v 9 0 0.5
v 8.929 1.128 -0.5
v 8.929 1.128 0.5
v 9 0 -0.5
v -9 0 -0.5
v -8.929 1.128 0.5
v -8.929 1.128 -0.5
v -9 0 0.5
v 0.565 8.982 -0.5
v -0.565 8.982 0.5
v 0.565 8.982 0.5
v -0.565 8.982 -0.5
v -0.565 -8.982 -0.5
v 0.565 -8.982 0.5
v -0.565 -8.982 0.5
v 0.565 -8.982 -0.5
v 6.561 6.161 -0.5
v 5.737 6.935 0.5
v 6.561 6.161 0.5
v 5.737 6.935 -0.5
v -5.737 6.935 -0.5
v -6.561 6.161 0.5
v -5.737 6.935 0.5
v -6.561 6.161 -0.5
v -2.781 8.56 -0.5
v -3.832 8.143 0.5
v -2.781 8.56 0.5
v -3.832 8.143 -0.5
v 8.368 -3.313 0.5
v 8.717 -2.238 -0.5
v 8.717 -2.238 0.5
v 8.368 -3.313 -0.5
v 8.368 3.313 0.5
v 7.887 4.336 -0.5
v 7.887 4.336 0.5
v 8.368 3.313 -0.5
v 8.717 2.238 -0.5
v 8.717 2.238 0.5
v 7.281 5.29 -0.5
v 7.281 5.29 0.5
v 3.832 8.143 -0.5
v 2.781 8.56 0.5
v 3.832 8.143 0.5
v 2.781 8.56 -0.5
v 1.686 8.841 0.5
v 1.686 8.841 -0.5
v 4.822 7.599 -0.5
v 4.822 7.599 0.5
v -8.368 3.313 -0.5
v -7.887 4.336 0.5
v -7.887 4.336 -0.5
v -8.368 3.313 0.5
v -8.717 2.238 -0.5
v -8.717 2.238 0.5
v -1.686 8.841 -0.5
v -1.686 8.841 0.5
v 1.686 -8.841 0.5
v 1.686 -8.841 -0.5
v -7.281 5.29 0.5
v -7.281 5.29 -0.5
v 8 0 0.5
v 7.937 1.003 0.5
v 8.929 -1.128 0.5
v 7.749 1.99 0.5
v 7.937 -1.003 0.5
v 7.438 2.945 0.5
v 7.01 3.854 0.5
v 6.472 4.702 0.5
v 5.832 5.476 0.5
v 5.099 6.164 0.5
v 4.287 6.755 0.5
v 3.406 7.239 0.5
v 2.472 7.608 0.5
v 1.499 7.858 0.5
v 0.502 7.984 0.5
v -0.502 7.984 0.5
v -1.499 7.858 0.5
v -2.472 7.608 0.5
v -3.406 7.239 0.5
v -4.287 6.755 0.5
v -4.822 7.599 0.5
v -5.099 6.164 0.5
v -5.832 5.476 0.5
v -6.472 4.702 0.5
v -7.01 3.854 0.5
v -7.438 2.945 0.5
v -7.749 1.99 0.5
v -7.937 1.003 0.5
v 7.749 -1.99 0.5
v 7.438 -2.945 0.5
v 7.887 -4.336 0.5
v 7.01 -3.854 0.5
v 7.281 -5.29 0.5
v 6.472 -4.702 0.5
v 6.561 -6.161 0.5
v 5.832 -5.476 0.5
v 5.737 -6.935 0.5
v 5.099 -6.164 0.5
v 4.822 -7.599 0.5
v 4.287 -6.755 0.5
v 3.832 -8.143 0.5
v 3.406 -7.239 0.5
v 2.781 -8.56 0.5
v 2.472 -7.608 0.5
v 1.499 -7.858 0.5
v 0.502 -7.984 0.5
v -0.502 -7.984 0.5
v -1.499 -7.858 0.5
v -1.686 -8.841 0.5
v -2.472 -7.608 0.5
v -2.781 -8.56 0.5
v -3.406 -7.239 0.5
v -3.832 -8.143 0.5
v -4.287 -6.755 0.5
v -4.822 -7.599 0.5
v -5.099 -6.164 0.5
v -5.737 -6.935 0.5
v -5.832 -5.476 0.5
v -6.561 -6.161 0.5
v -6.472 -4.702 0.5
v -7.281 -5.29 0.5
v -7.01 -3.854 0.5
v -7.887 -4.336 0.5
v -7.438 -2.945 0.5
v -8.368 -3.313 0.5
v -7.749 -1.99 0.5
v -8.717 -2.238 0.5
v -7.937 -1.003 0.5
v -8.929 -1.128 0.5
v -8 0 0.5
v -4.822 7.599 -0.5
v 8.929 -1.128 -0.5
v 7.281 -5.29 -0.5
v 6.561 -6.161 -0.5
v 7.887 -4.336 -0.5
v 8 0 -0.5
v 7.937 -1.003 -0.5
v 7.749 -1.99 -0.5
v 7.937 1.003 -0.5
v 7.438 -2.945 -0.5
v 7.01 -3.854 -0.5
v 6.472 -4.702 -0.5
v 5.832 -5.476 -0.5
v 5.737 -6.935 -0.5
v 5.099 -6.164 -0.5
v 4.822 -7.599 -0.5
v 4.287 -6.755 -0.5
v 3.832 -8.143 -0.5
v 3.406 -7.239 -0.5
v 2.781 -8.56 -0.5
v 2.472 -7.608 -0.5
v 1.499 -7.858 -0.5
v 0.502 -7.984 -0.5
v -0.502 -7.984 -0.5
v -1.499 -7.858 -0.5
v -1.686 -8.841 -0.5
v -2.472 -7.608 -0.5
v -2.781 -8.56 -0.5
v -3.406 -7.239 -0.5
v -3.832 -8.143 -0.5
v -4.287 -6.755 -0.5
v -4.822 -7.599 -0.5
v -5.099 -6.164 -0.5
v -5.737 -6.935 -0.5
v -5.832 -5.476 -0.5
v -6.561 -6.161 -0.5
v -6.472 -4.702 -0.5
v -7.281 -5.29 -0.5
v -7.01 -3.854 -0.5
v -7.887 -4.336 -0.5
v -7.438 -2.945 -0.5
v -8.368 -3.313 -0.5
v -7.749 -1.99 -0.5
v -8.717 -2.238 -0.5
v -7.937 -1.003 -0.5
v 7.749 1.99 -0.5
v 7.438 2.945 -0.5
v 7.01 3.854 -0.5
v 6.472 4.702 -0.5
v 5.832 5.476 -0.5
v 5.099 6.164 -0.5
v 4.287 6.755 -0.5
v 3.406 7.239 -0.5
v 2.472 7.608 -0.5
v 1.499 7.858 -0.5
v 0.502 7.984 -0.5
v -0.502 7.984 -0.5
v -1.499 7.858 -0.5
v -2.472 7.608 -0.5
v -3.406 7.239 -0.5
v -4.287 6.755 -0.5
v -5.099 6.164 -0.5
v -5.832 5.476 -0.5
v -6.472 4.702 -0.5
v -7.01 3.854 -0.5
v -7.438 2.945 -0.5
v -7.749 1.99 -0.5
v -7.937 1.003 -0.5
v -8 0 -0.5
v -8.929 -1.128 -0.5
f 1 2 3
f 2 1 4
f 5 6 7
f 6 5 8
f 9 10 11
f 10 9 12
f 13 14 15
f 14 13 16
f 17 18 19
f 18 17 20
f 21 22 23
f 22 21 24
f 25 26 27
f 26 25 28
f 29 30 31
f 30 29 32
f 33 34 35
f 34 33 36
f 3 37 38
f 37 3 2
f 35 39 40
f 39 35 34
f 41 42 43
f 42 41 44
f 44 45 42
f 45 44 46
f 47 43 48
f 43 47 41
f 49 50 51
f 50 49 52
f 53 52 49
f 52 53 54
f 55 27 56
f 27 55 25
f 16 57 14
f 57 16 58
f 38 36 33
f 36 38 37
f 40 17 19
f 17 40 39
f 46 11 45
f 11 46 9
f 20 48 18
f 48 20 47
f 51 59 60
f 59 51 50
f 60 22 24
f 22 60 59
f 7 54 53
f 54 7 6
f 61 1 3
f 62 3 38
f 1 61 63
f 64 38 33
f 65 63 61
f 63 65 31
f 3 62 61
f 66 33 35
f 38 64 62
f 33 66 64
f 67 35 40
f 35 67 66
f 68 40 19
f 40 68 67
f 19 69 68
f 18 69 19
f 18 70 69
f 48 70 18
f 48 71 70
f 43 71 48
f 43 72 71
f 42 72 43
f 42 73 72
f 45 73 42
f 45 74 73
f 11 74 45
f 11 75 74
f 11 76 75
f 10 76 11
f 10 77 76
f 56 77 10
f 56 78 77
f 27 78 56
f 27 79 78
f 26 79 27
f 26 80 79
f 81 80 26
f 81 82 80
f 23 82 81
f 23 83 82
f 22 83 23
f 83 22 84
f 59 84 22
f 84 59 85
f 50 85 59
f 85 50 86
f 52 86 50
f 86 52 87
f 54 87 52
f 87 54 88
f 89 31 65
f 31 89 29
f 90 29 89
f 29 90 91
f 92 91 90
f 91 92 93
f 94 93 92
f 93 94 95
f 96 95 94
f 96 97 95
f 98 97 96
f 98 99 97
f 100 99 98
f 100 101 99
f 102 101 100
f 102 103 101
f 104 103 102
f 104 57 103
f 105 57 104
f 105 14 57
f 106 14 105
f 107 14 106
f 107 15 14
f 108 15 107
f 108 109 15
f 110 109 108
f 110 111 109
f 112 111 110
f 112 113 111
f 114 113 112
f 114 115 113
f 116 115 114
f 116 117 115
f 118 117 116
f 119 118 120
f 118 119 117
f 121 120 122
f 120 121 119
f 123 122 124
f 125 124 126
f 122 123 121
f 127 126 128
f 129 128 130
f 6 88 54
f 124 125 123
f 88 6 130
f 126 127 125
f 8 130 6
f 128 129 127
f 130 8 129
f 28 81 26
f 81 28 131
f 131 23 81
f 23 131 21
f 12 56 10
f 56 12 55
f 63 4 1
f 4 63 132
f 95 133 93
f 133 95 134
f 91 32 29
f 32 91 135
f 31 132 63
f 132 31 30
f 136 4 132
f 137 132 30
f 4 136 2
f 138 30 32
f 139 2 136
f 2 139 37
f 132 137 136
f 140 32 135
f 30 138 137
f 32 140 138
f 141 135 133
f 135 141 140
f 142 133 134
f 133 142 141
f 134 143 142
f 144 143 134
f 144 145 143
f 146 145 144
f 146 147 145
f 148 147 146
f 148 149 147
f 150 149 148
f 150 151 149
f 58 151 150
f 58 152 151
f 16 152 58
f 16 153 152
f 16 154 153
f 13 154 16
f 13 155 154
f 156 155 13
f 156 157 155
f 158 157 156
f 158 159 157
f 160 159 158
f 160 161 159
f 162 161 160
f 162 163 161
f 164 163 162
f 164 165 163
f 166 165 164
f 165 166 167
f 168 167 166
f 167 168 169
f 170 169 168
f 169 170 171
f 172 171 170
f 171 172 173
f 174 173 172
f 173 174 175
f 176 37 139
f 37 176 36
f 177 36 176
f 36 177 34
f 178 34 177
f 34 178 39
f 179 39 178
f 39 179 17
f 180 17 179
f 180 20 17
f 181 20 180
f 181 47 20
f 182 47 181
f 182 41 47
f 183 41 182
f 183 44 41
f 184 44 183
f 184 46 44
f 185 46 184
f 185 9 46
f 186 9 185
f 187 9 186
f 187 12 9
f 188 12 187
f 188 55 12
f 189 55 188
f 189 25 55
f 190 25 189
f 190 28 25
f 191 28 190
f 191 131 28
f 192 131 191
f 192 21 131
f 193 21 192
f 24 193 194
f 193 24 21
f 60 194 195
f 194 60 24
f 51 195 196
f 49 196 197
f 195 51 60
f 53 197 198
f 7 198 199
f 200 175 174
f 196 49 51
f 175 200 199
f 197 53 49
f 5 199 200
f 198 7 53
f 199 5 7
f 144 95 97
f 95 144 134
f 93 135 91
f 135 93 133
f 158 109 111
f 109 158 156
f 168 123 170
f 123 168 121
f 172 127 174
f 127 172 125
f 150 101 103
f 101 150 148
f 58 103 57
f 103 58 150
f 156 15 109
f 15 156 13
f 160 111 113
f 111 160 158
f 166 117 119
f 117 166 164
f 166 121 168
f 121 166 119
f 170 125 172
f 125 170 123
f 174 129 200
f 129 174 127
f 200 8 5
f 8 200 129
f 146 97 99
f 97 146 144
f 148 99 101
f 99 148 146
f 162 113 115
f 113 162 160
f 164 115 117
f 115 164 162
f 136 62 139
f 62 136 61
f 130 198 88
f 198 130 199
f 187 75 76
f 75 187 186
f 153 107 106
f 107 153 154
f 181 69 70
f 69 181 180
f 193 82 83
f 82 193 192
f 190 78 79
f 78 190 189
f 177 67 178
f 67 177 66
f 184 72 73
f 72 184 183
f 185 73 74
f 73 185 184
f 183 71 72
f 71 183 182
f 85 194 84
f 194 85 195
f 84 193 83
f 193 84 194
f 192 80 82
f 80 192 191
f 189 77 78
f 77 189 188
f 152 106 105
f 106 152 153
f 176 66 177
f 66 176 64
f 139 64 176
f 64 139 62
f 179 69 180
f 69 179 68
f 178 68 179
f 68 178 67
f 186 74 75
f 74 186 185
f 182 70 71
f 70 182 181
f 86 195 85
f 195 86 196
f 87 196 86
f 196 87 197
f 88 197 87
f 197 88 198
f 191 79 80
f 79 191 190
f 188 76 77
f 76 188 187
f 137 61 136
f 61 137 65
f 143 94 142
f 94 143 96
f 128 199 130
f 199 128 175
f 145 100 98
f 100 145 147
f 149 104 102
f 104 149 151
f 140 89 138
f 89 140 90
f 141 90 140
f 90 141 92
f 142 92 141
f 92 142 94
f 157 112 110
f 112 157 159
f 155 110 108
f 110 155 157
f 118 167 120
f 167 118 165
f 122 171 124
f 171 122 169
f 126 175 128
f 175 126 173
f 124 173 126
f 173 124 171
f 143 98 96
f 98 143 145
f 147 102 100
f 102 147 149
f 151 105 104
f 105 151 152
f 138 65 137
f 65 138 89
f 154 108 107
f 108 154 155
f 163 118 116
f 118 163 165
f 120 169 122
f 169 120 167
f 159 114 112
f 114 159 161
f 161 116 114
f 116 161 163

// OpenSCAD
$fn = 50;


difference() {
	union() {
		translate(v = [0, 0, -0.5000000000]) {
			cylinder(h = 1, r = 9.0000000000);
		}
	}
	union() {
		translate(v = [0, 0, -100.0000000000]) {
			cylinder(h = 200, r = 8);
		}
	}
}
